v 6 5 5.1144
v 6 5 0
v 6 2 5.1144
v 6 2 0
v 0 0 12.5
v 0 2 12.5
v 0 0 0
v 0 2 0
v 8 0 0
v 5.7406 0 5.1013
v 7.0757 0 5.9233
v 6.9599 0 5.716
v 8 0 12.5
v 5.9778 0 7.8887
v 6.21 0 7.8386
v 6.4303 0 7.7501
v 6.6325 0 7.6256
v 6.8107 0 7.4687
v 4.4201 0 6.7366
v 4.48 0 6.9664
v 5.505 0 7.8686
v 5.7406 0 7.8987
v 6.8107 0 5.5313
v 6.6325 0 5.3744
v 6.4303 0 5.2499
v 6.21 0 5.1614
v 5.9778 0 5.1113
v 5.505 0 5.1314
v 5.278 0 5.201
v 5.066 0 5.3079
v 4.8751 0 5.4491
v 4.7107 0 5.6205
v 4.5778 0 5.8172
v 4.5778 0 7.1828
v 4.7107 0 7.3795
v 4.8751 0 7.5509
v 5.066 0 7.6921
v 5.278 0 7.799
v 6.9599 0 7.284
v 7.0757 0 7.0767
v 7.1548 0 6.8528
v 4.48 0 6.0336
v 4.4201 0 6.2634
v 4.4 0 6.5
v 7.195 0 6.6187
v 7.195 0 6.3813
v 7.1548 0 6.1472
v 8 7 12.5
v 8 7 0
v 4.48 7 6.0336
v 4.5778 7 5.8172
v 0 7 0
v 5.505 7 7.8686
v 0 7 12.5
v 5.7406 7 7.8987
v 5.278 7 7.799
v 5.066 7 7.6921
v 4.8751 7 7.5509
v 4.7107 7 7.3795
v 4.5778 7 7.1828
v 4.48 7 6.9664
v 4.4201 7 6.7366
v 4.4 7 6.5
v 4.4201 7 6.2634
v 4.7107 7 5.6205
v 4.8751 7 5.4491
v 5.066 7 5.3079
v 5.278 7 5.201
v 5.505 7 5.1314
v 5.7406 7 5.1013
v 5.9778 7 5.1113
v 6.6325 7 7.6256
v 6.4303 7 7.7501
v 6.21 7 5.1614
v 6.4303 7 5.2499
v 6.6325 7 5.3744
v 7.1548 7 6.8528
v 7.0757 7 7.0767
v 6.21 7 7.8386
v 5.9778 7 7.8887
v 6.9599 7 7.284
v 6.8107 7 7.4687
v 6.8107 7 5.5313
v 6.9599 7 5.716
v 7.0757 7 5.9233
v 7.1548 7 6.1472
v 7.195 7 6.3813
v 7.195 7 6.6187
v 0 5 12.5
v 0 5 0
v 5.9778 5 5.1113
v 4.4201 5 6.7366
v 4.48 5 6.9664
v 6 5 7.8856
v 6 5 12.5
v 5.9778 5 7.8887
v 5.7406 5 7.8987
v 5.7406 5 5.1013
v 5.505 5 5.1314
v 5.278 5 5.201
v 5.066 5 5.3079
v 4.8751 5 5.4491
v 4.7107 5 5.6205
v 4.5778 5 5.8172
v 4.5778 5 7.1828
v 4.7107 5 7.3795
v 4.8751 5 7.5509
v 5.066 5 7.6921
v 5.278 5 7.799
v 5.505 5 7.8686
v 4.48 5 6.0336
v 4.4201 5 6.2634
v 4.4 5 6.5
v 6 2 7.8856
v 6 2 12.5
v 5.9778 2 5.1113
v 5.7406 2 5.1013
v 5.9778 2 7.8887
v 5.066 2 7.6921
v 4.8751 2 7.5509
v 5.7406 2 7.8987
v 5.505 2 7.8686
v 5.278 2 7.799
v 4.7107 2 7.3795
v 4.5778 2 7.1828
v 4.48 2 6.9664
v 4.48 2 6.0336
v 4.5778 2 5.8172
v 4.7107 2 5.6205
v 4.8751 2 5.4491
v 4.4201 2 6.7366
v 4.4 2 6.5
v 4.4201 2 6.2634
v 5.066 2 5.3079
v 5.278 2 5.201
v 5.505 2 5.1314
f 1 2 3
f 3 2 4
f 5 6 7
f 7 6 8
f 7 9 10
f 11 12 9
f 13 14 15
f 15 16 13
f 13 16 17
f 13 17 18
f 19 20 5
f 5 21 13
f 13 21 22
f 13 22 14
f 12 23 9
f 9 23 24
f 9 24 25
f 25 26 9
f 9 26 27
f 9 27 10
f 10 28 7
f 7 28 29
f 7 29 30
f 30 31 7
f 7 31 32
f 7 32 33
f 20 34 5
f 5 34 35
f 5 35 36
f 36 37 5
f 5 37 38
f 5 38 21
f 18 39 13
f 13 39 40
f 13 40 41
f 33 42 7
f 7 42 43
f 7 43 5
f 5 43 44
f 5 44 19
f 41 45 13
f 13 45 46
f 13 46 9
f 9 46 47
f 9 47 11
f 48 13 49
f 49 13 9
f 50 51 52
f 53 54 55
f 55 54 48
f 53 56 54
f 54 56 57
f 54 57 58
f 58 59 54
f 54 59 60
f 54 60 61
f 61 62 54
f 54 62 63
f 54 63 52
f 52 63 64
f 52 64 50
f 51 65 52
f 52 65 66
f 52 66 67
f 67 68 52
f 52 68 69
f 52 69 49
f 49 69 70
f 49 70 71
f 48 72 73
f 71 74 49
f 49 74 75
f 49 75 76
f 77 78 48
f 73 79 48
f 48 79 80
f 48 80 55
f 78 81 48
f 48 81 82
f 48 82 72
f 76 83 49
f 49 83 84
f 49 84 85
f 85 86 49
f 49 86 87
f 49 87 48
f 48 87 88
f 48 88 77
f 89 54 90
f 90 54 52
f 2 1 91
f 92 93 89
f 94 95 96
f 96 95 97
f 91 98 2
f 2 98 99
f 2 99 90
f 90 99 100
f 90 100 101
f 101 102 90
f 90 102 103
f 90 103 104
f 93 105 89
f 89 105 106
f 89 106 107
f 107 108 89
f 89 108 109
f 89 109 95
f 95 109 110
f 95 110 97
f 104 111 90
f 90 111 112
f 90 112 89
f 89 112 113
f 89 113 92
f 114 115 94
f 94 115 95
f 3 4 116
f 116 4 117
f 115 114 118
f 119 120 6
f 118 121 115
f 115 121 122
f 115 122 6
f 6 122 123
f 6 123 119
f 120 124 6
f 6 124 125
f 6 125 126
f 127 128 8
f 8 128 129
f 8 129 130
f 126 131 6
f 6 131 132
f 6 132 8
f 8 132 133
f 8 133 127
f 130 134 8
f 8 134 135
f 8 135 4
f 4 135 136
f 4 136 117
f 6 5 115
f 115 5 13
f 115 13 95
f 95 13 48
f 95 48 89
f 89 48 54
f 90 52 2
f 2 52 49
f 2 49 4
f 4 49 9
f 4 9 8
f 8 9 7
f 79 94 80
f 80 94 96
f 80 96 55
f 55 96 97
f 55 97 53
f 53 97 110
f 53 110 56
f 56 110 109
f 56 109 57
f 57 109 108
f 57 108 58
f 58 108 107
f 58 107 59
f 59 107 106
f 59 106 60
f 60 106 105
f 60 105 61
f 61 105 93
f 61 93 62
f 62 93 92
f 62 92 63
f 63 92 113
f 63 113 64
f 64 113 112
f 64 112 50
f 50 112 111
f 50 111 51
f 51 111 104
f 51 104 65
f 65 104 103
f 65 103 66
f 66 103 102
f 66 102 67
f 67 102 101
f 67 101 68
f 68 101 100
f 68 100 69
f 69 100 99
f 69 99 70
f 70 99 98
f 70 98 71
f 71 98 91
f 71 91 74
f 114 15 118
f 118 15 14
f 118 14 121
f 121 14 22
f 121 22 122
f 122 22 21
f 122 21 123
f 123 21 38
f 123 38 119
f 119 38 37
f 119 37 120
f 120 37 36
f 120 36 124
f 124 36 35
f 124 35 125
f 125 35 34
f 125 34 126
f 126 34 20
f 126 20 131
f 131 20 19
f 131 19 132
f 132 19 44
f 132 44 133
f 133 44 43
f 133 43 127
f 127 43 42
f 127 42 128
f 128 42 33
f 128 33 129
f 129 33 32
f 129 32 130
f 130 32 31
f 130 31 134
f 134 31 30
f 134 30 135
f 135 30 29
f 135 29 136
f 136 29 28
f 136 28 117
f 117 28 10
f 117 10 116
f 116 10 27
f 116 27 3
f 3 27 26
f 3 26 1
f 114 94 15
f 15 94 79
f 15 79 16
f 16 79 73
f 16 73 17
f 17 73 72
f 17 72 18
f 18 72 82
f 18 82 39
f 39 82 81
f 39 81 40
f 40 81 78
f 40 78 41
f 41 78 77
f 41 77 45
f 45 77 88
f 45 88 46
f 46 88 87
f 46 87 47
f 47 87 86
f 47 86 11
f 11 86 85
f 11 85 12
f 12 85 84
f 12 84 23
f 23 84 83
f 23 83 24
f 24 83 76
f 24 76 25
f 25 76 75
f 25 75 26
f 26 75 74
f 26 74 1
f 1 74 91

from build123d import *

# Parameters (mm, degrees)
BOSS_EXTRUDE1_DEPTH = 12.5
SKETCH2_R           = 1.4
CUT_EXTRUDE1_DEPTH  = 17.408839081


with BuildPart() as part:
    # Sketch1 → Boss-Extrude1 (new body)
    with BuildSketch(Plane.XY):
        Polygon((0, 0), (8, 0), (8, 7), (0, 7), (0, 5), (6, 5), (6, 2), (0, 2), align=None)
    extrude(amount=BOSS_EXTRUDE1_DEPTH)

    # Sketch2 → Cut-Extrude1 (cut, through all)
    with BuildSketch(Plane(origin=(0, 7, 0), x_dir=(1, 0, 0), z_dir=(0, 1, 0))):
        with Locations(Location((5.8, -6.5, 0), (0, 0, 180))):
            Circle(SKETCH2_R)
    extrude(amount=-CUT_EXTRUDE1_DEPTH, mode=Mode.SUBTRACT)


solid = part.part
